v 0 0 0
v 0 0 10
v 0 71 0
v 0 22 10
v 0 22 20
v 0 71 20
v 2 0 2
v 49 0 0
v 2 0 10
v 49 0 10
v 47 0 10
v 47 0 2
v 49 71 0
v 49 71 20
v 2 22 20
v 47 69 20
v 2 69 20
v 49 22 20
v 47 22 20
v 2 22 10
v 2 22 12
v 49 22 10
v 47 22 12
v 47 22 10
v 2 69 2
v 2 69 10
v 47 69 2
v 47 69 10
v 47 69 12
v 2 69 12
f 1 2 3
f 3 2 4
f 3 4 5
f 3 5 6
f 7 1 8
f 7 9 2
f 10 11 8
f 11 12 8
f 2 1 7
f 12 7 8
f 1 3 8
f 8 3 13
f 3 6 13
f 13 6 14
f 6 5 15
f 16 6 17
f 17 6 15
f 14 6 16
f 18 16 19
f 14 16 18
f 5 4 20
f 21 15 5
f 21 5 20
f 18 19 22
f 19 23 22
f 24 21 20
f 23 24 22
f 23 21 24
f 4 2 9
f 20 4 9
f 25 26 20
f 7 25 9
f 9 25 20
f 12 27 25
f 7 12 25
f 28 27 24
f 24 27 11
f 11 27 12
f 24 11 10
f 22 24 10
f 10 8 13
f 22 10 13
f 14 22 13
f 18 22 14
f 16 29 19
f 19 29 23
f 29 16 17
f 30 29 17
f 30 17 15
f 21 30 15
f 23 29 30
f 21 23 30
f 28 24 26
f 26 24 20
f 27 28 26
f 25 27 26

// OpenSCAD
/*
 * Author:  Mark Hanford
 * License: Creative Commons Attribution-ShareAlike 3.0 Unported License
 *          see http://creativecommons.org/licenses/by-sa/3.0/
 * URL:     http://www.thingiverse.com
 */

/* [Common] */
part = "conditions"; // [conditions:Conditions]

/* [Advanced] */

// thickness of the walls of the stand
wall_thickness = 2;

// extra space around the cards
gap = 2;


/* [Hidden] */
// helper constants
x=0;y=1;z=2;
width=0;thickness=1;height=2;

// dimensions of the smaller cards
small_card_size = [41, 0.3, 63];

// dimensions of the larger cards
large_card_size = [57, 0.3, 80];

// Show the card deck?
showCards = true;

// Short-cut for wall_thickness
t=wall_thickness;


module cardStack(size, num)
{
	color([0.9, 0.5, 0.1, 0.8])
	cube([size[x], size[y]*num, size[z]]);
}

module conditionTokens()
{
	color([0.9, 0, 0, 0.8])
	cube([small_card_size[x], 40, 20]);
}

conditionTokenTraySize = [
	t+gap+small_card_size[width]+gap+t,
	t+gap+small_card_size[width]+gap+t,
	10
];

module conditionTokenTray()
{
	difference()
	{
		cube(conditionTokenTraySize);
		translate([t, -t, t])
		cube(conditionTokenTraySize - [2*t, 0, 0]);
	}
}

conditionCardTraySize = [
	t+gap+small_card_size[width]+gap+t,
	t+gap+small_card_size[height]+gap+t,
	10
];

module conditionCardTray()
{
	difference()
	{
		cube(conditionCardTraySize);
		translate([t, -t, t])
		cube(conditionCardTraySize-[2*t, 0, 0]);
	}
}

module conditionStack()
{
	union()
	{
		translate([0, conditionCardTraySize[y]-conditionTokenTraySize[y], conditionCardTraySize[z]])
		conditionTokenTray();
		conditionCardTray();
	}
}

module printPart()
{
	if (part == "conditions")
	{
		conditionStack();
	}
}

printPart();
